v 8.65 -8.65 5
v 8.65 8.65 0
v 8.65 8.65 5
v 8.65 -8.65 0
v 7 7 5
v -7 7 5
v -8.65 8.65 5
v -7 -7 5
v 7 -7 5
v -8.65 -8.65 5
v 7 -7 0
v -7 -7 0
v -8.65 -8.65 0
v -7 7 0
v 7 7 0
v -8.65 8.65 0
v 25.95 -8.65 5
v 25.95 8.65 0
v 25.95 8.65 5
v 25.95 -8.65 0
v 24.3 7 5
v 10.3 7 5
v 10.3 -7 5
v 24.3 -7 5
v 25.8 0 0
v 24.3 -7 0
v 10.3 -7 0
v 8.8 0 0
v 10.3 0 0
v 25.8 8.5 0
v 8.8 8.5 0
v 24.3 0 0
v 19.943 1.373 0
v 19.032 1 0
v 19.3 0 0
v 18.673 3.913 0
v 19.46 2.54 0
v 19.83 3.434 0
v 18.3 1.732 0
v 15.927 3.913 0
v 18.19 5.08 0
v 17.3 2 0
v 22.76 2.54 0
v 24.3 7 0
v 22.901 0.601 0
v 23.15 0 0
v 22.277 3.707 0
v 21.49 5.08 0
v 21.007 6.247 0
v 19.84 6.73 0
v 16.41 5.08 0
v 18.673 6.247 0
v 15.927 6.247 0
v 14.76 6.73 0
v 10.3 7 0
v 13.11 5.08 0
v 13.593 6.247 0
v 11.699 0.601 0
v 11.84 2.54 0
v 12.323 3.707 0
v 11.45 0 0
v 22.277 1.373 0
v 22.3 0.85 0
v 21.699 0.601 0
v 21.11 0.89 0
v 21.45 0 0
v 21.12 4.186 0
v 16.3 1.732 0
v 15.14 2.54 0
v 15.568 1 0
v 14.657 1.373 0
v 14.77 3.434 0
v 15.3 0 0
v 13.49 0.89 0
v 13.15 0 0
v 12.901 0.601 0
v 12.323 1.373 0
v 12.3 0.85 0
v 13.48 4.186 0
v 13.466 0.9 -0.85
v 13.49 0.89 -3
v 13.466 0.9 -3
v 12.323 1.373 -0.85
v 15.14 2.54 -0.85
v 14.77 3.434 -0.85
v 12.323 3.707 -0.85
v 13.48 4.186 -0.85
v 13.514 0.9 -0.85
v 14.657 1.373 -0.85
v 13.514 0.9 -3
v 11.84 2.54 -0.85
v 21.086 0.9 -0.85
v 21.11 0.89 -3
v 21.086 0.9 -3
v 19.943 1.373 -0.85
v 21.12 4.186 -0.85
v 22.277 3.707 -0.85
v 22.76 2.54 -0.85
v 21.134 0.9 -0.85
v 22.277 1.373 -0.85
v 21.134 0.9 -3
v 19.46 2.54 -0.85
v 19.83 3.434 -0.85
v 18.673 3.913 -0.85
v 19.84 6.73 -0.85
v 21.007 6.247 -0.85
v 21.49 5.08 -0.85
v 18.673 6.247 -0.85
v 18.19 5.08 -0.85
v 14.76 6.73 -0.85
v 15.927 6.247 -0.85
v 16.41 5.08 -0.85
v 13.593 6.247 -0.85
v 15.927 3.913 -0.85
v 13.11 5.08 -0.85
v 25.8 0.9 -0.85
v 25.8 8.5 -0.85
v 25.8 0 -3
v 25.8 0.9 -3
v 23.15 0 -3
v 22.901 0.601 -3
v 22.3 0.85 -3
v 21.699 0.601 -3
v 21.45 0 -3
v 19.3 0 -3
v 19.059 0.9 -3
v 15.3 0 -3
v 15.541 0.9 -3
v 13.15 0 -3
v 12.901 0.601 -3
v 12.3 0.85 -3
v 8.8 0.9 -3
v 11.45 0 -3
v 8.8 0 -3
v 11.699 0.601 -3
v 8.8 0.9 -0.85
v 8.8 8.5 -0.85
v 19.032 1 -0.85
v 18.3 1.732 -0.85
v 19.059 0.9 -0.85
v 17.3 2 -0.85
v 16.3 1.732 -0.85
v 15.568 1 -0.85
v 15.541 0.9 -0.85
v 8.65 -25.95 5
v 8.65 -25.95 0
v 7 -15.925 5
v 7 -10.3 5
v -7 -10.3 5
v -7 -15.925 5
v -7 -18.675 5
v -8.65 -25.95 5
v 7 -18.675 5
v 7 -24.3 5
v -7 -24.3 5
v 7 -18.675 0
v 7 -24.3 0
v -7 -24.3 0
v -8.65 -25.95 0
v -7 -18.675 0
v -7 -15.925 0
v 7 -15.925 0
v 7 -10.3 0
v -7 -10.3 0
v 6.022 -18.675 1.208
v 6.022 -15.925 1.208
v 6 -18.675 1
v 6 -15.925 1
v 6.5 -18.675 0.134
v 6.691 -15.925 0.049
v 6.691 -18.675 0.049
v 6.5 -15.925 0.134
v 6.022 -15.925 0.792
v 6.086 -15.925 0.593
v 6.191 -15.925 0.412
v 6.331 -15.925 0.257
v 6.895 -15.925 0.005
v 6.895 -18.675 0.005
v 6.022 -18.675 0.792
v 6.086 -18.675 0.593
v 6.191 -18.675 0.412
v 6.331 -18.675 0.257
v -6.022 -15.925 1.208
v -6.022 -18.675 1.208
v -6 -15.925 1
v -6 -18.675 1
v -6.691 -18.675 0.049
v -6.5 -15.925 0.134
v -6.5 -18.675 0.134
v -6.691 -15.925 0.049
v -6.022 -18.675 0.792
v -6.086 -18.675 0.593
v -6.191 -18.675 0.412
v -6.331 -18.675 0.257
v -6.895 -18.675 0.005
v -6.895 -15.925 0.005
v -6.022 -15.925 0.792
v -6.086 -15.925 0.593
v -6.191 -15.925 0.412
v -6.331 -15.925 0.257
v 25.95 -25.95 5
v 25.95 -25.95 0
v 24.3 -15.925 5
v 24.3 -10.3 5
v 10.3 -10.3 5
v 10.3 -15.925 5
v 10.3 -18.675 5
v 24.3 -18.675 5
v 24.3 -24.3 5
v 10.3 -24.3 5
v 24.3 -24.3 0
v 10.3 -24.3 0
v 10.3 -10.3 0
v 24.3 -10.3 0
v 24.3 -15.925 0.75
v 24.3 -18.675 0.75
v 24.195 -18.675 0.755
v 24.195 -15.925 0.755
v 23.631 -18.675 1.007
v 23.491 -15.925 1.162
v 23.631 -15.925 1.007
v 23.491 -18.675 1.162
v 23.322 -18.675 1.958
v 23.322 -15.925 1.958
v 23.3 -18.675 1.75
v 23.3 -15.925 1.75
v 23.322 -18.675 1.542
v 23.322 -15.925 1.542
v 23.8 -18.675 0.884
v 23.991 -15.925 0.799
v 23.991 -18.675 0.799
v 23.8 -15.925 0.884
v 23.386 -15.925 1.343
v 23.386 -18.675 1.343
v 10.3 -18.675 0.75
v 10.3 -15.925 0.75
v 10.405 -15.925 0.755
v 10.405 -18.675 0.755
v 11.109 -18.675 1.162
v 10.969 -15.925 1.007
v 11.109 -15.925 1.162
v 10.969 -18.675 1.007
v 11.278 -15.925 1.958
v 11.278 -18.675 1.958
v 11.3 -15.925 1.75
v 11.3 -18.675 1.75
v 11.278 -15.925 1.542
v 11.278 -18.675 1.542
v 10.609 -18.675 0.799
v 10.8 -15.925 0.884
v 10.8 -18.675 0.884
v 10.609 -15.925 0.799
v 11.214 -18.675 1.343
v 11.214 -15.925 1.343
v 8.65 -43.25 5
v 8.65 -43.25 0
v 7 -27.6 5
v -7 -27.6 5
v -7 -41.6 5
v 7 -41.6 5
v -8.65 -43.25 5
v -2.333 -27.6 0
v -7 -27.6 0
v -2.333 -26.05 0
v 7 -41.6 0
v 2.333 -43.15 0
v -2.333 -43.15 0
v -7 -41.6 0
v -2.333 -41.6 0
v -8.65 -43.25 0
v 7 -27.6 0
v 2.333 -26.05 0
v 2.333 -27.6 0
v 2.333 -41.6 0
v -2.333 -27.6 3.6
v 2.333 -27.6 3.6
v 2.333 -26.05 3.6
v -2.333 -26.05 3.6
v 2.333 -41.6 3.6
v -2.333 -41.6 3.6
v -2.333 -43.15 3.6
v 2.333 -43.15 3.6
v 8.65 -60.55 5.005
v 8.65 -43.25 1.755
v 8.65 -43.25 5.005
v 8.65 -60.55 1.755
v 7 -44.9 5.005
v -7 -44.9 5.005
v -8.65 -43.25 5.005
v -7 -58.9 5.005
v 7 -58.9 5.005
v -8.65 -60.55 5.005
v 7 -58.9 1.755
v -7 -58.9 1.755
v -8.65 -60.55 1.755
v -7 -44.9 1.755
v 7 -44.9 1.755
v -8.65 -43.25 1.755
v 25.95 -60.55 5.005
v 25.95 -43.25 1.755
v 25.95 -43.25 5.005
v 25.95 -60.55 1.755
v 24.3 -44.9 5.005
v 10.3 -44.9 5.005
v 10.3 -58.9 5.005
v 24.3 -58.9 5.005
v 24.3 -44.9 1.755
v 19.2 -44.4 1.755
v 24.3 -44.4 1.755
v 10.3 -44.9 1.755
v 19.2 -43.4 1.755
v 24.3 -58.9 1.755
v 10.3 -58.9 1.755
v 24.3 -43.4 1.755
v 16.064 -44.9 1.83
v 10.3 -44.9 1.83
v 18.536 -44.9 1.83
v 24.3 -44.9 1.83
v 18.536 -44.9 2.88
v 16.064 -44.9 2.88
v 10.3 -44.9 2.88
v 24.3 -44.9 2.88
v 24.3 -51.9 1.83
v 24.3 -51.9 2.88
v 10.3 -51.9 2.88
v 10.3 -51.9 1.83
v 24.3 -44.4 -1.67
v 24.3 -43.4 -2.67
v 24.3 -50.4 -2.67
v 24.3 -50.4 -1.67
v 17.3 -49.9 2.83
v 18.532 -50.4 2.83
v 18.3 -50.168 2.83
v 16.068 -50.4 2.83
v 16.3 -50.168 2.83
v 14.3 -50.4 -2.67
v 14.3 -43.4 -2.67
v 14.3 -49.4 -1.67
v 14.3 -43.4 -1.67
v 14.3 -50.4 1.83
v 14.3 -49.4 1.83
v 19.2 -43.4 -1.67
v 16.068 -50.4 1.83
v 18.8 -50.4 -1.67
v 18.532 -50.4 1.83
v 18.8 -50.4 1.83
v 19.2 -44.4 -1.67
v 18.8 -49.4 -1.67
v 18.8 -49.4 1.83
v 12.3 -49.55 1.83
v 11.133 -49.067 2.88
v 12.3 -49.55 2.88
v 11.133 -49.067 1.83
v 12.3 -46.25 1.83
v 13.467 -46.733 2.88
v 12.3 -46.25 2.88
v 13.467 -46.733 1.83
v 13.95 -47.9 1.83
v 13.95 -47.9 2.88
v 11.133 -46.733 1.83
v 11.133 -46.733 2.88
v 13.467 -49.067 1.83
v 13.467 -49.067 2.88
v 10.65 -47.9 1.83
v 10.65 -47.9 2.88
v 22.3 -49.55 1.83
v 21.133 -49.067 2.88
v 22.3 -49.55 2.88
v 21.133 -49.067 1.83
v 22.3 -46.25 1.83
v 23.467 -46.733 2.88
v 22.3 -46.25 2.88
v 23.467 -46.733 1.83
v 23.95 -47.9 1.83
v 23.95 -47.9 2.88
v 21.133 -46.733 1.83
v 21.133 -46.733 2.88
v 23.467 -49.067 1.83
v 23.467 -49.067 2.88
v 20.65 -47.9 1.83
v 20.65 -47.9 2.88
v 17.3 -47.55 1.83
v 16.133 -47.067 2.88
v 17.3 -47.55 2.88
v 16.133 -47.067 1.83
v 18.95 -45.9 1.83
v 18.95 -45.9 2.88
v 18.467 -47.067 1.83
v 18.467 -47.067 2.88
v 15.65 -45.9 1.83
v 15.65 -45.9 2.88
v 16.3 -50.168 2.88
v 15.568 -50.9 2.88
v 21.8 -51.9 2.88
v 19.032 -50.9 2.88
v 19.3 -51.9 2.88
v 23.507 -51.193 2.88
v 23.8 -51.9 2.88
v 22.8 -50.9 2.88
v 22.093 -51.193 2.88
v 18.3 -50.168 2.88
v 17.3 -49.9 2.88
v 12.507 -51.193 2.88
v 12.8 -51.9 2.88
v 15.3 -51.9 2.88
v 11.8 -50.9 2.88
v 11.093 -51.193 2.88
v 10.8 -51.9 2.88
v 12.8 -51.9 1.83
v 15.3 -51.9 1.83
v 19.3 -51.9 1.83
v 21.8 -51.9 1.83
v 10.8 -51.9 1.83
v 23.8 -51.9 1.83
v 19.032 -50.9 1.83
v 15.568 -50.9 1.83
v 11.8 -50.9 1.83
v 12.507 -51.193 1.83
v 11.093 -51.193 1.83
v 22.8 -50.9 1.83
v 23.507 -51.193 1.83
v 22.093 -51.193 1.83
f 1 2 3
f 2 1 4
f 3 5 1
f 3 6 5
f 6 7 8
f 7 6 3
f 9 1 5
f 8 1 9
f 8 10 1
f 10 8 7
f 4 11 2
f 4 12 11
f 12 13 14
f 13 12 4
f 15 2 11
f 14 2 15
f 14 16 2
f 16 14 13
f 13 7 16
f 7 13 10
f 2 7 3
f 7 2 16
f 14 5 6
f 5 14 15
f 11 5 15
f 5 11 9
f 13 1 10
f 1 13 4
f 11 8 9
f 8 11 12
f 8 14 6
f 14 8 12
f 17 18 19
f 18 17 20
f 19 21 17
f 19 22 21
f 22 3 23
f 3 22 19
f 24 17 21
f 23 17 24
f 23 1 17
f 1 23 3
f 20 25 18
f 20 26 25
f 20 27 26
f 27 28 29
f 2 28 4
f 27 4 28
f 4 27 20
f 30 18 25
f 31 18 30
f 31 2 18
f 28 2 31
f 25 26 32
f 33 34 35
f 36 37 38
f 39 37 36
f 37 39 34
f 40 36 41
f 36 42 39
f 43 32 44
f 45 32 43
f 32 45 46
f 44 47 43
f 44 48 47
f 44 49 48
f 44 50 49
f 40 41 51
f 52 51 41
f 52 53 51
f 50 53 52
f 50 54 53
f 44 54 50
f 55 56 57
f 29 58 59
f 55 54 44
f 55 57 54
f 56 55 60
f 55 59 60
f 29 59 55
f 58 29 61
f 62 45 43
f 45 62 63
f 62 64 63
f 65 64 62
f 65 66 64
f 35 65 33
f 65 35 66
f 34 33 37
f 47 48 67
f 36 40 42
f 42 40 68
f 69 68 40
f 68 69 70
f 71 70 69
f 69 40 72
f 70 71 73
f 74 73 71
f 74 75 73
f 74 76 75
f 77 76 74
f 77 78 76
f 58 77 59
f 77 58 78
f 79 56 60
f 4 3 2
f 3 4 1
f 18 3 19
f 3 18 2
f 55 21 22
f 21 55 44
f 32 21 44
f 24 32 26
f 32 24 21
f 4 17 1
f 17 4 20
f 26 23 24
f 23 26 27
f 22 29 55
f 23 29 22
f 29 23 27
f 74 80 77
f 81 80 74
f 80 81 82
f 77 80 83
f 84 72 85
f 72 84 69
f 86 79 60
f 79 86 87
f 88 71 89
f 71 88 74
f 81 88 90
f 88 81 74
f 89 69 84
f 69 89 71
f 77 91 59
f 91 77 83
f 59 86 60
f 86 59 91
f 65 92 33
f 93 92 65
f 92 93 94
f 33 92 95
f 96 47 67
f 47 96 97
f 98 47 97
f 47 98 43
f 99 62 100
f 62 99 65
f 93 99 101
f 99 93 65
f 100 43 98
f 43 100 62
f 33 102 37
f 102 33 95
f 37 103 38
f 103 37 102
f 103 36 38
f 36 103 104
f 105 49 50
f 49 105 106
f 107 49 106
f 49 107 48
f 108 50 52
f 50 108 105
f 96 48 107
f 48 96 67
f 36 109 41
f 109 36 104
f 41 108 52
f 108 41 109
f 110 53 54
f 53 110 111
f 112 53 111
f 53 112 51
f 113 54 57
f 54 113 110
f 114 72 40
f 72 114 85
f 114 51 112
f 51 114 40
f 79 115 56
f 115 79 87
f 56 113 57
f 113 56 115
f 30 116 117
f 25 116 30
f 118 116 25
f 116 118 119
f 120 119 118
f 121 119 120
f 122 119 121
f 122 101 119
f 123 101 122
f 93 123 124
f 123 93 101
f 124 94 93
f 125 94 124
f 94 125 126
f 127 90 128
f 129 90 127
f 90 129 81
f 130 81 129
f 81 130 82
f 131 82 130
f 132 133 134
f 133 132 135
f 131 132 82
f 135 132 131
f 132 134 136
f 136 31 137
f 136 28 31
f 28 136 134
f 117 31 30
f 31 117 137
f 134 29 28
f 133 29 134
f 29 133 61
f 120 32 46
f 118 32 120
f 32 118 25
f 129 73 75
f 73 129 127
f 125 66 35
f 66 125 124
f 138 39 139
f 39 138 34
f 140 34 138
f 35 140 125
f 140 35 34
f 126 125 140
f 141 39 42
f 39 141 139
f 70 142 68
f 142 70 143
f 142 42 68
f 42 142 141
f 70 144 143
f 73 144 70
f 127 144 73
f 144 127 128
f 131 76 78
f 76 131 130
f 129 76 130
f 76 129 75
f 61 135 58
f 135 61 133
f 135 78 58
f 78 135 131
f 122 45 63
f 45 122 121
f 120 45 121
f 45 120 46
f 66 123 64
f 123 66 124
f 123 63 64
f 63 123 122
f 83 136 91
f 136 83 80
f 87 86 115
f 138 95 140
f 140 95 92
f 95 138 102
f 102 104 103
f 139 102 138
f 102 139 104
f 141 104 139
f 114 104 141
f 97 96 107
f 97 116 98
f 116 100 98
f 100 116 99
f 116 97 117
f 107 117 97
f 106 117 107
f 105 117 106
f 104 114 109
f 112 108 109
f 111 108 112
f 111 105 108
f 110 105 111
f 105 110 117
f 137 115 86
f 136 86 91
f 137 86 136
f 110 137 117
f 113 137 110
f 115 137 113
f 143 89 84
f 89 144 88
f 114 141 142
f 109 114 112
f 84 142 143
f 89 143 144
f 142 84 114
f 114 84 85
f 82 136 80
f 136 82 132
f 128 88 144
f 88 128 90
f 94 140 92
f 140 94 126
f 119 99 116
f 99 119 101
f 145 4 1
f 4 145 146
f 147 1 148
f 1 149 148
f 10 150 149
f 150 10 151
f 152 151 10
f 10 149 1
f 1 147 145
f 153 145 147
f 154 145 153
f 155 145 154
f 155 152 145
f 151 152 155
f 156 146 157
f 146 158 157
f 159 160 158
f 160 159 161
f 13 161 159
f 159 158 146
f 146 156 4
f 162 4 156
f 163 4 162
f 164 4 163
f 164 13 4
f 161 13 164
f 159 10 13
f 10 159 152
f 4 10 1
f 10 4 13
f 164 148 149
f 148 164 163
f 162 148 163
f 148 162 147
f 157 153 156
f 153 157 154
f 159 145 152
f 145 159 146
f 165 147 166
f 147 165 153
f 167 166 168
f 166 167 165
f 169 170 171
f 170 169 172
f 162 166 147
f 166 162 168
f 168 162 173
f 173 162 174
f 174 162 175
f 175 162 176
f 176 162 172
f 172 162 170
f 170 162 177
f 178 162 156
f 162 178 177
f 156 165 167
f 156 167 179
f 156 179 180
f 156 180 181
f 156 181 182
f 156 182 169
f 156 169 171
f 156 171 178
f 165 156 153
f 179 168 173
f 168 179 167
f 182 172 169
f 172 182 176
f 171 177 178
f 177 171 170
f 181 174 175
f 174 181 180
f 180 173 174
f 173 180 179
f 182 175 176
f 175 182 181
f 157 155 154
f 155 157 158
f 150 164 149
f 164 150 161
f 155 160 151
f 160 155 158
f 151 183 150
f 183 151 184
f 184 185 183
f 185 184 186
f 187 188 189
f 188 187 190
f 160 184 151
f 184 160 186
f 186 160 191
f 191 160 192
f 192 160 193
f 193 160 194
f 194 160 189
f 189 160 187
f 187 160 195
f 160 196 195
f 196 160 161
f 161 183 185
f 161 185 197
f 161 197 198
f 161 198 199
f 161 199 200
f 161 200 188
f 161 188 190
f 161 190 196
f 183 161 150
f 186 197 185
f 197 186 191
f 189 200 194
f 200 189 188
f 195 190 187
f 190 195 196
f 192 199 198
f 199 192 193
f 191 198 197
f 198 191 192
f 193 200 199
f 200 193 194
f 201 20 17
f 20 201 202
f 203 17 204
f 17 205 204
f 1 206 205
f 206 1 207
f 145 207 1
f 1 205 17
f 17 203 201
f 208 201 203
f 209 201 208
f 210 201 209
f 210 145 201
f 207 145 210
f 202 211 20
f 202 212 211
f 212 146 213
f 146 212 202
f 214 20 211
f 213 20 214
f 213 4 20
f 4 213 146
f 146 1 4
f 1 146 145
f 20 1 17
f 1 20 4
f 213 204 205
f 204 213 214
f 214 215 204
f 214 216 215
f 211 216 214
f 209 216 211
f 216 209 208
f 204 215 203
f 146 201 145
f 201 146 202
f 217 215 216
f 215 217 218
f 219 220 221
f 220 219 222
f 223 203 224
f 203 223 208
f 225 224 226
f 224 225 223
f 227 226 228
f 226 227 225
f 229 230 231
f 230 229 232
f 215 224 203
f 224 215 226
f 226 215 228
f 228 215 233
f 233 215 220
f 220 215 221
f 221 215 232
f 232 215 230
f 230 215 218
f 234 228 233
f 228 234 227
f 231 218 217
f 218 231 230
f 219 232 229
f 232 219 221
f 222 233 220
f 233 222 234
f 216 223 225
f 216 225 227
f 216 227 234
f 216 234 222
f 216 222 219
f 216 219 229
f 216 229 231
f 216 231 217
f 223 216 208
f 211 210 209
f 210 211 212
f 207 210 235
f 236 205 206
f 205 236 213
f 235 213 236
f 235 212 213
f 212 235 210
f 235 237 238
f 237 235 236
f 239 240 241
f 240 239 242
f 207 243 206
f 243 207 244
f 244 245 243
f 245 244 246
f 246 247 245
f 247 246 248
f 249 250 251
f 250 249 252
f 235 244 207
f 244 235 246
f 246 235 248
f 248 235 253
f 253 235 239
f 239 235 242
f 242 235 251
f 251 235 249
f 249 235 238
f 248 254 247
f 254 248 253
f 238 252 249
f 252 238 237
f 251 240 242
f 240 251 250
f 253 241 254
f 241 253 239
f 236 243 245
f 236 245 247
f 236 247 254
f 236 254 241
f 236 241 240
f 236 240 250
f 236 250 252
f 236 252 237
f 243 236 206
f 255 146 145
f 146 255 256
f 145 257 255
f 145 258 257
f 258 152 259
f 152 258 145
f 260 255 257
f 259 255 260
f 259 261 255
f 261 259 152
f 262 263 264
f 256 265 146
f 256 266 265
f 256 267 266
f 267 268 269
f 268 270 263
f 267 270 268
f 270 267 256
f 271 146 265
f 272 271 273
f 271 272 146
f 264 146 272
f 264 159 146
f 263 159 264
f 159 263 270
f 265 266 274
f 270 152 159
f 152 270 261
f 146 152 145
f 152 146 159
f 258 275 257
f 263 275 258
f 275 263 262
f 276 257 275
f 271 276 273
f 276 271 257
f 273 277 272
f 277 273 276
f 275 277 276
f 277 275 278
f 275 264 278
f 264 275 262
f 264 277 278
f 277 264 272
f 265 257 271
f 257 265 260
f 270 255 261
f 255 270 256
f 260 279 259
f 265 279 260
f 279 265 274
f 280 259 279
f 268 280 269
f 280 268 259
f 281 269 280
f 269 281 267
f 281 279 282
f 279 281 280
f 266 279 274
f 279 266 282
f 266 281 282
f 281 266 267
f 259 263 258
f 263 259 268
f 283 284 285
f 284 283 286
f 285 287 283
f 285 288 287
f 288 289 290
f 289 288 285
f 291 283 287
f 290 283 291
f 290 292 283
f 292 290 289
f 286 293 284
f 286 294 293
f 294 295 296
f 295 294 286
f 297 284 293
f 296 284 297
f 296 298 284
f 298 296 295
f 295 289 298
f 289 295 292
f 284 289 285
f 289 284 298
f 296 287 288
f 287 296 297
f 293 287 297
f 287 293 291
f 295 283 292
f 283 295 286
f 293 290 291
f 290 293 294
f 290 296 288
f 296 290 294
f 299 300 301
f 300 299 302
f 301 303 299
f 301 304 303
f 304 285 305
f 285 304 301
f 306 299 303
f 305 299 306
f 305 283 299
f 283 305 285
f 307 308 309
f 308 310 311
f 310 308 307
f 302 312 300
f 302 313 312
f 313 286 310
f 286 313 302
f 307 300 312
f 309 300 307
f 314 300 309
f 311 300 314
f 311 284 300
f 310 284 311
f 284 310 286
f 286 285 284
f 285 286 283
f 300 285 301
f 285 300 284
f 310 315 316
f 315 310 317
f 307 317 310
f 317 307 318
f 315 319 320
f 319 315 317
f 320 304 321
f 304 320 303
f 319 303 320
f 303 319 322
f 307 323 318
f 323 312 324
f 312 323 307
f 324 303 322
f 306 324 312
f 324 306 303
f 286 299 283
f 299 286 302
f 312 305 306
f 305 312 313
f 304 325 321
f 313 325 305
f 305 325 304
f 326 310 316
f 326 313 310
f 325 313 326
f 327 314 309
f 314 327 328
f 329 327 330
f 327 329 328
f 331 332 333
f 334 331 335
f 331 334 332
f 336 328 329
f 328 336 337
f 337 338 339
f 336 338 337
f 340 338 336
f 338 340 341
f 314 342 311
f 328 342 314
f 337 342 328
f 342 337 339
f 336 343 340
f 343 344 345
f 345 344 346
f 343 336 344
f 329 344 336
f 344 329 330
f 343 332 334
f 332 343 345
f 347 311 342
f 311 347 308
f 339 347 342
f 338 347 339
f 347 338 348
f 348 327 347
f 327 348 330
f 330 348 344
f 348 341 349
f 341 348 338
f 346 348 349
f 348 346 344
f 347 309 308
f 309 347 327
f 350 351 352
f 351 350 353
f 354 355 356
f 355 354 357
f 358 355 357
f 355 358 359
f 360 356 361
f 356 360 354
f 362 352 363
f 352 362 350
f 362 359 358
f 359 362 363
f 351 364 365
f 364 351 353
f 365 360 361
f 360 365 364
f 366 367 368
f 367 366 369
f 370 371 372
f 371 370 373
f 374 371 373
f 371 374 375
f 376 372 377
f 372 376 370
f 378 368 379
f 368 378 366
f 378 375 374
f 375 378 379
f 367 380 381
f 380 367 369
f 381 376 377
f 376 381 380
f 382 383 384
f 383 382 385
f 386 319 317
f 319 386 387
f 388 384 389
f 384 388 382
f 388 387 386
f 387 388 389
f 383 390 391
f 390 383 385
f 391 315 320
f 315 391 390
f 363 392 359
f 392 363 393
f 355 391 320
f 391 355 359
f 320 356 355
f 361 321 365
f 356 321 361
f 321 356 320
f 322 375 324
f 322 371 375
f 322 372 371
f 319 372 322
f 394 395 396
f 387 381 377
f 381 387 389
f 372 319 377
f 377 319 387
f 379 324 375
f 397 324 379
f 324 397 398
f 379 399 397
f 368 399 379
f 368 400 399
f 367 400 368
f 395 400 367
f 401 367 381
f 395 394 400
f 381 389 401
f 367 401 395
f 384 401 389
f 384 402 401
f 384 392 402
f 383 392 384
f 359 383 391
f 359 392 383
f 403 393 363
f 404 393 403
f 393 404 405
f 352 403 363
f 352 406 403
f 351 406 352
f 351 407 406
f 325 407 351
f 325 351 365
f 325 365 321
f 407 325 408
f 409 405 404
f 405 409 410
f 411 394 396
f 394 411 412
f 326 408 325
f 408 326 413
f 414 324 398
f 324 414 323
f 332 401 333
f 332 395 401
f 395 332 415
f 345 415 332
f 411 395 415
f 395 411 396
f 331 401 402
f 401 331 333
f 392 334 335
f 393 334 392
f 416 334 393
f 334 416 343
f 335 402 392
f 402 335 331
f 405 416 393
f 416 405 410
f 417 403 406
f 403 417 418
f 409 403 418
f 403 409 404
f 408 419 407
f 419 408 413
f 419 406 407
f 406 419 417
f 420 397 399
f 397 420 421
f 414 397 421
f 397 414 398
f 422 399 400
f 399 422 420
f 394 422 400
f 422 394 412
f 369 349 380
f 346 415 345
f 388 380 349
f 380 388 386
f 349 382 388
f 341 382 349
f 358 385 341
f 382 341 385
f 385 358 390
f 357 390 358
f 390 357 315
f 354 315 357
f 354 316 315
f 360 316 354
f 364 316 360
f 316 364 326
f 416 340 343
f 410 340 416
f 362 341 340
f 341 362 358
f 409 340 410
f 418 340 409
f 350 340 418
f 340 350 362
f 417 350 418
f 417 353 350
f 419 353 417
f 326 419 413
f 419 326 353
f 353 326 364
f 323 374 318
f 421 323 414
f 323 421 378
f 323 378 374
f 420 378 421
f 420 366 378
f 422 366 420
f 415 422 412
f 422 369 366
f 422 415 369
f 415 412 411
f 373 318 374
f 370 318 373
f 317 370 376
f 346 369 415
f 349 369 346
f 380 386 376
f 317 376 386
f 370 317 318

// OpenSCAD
union() {
  
  // box and mx
  color("Green", 1) {
    translate ([ 0, 0, 0 ]) {
      union() {
        union() {
          translate([ 0, 7.825, 5 / 2 ]) {
            cube([ 17.3, 1.65, 5 ], center = true);
          }
          translate([ 7.825, 0, 5 / 2 ]) {
            cube([ 1.65, 17.3, 5 ], center = true);
          }
        }
        mirror([ 0, 1, 0 ]) {
          mirror([ 1, 0, 0 ]) {
            union() {
              translate([ 0, 7.825, 5 / 2 ]) {
                cube([ 17.3, 1.65, 5 ], center = true);
              }
              translate([ 7.825, 0, 5 / 2 ]) {
                cube([ 1.65, 17.3, 5 ], center = true);
              }
            }
          }
        }
      }
    }
  }

  // box and mx hotswap
  color("LightGreen", 1) {
    translate([ 17.3, 0, 0 ]) {
      union() {
        union() {
          translate([ 0, 7.825, 5 / 2 ]) {
            cube([ 17.3, 1.65, 5 ], center = true);
          }
          translate([ 7.825, 0, 5 / 2 ]) {
            cube([ 1.65, 17.3, 5 ], center = true);
          }
        }
        mirror([ 0, 1, 0 ]) {
          mirror([ 1, 0, 0 ]) {
            union() {
              translate([ 0, 7.825, 5 / 2 ]) {
                cube([ 17.3, 1.65, 5 ], center = true);
              }
              translate([ 7.825, 0, 5 / 2 ]) {
                cube([ 1.65, 17.3, 5 ], center = true);
              }
            }
          }
        }
        union() {
          difference() {
            translate([ 0, 4.25, -1.5 ]) {
              cube([ 17.0, 8.5, 3 ], center = true);
            }
            cylinder($fn = 12, h = 10, r = 2.0, center = true);
            union() {
              translate([ -3.81, 2.54, 0 ]) {
                cylinder($fn = 8, h = 10, r = 1.65, center = true);
              }
              translate([ 3.81, 2.54, 0 ]) {
                cylinder($fn = 8, h = 10, r = 1.65, center = true);
              }
            }
            union() {
              translate([ 2.54, 5.08, 0 ]) {
                cylinder($fn = 8, h = 10, r = 1.65, center = true);
              }
              translate([ -2.54, 5.08, 0 ]) {
                cylinder($fn = 8, h = 10, r = 1.65, center = true);
              }
            }
            translate([ -5, 0, 0 ]) {
              cylinder($fn = 8, h = 10, r = 0.85, center = true);
            }
            translate([ 5, 0, 0 ]) {
              cylinder($fn = 8, h = 10, r = 0.85, center = true);
            }
            translate([ 0, 5, -2.6 ]) {
              cube([ 19, 8.2, 3.5 ], center = true);
            }
          }
        }
      }
    }
  }
  
  
  // mx
  color("Blue", 1) {
    translate([ 0, -17.3, 0 ]) {
      union () {
        union () {
          translate ([0, 7.825, 5/2]) {
            cube ([17.3, 1.65, 5], center=true);
          }
          translate ([7.825, 0, 5/2]) {
            cube ([1.65, 17.3, 5], center=true);
          }
          hull () {
            translate ([7.75, 0, 5/2]) {
              cube ([1.5, 2.75, 5], center=true);
            }
            translate ([7.0, 0, 1]) {
              rotate (a=90.0, v=[1, 0, 0]) {
                cylinder ($fn=30, h=2.75, r=1, center=true);
              }
            }
          }
        }
        mirror ([0, 1, 0]) {
          mirror ([1, 0, 0]) {
            union () {
              translate ([0, 7.825, 5/2]) {
                cube ([17.3, 1.65, 5], center=true);
              }
              translate ([7.825, 0, 5/2]) {
                cube ([1.65, 17.3, 5], center=true);
              }
              hull () {
                translate ([7.75, 0, 5/2]) {
                  cube ([1.5, 2.75, 5], center=true);
                }
                translate ([7.0, 0, 1]) {
                  rotate (a=90.0, v=[1, 0, 0]) {
                    cylinder ($fn=30, h=2.75, r=1, center=true);
                  }
                }
              }
            }
          }
        }
      }
    }
  }
  // mx-snap-in
  color("Cyan", 1) {
    translate ([ 17.3, -17.3, 0 ]) {
      union() {
        union() {
          translate([ 0, 7.825, 5 / 2 ]) {
            cube([ 17.3, 1.65, 5 ], center = true);
          }
          translate([ 7.825, 0, 5 / 2 ]) {
            cube([ 1.65, 17.3, 5 ], center = true);
          }
          hull() {
            translate([ 7.75, 0, 2.875 ]) {
              cube([ 1.5, 2.75, 4.25 ], center = true);
            }
            translate([ 7.0, 0, 1.75 ]) {
              rotate(a = 90.0, v = [ 1, 0, 0 ]) {
                cylinder($fn = 30, h = 2.75, r = 1, center = true);
              }
            }
          }
        }
        mirror([ 0, 1, 0 ]) {
          mirror([ 1, 0, 0 ]) {
            union() {
              translate([ 0, 7.825, 5 / 2 ]) {
                cube([ 17.3, 1.65, 5 ], center = true);
              }
              translate([ 7.825, 0, 5 / 2 ]) {
                cube([ 1.65, 17.3, 5 ], center = true);
              }
              hull() {
                translate([ 7.75, 0, 2.875 ]) {
                  cube([ 1.5, 2.75, 4.25 ], center = true);
                }
                translate([ 7.0, 0, 1.75 ]) {
                  rotate(a = 90.0, v = [ 1, 0, 0 ]) {
                    cylinder($fn = 30, h = 2.75, r = 1, center = true);
                  }
                }
              }
            }
          }
        }
      }
    }
  }
    
  
  // kailh
  color("Red", 1) {
    translate([ 0, -34.6, 0 ]) {
      union() {
        union() {
          difference() {
            translate([ 0, 7.825, 5 / 2 ]) {
              cube([ 17.3, 1.65, 5 ], center = true);
            }
            translate([ 0, 7.75, 1 / 5 ]) {
              cube([ 4.666666666666667, 1.6, 6.8 ], center = true);
            }
          }
          translate([ 7.825, 0, 5 / 2 ]) {
            cube([ 1.65, 17.3, 5 ], center = true);
          }
        }
        mirror([ 0, 1, 0 ]) {
          mirror([ 1, 0, 0 ]) {
            union() {
              difference() {
                translate([ 0, 7.825, 5 / 2 ]) {
                  cube([ 17.3, 1.65, 5 ], center = true);
                }
                translate([ 0, 7.75, 1 / 5 ]) {
                  cube([ 4.666666666666667, 1.6, 6.8 ], center = true);
                }
              }
              translate([ 7.825, 0, 5 / 2 ]) {
                cube([ 1.65, 17.3, 5 ], center = true);
              }
            }
          }
        }
      }
    }
  }


  // kailh choc
  color("Yellow", 1) {  
    translate([ 0, -51.9, -0.12 ]) {
      union() {
          union() {
            translate([ 0, 7.825, 3.5 ]) {
              cube([ 17.3, 1.65, 3.25 ], center = true);
            }
            translate([ 7.825, 0, 3.5 ]) {
              cube([ 1.65, 17.3, 3.25 ], center = true);
            }
          }
          mirror([ 0, 1, 0 ]) {
            mirror([ 1, 0, 0 ]) {
              union() {
                translate([ 0, 7.825, 3.5 ]) {
                  cube([ 17.3, 1.65, 3.25 ], center = true);
                }
                translate([ 7.825, 0, 3.5 ]) {
                  cube([ 1.65, 17.3, 3.25 ], center = true);
                }
              }
            }
          }
        }
    }
  }
  // kailh choc hotswap
  color("Orange", 1) {  
    translate([ 17.3, -51.9, -0.12 ]) {
      union() {
          union() {
            translate([ 0, 7.825, 3.5 ]) {
              cube([ 17.3, 1.65, 3.25 ], center = true);
            }
            translate([ 7.825, 0, 3.5 ]) {
              cube([ 1.65, 17.3, 3.25 ], center = true);
            }
          }
          mirror([ 0, 1, 0 ]) {
            mirror([ 1, 0, 0 ]) {
              union() {
                translate([
                  0,
                  7.825,
                  3.5,
                ]) {
                  cube([ 17.3, 1.65, 3.25 ], center = true);
                }
                translate([ 7.825, 0, 3.5 ]) {
                  cube([ 1.65, 17.3, 3.25 ], center = true);
                }
              }
            }
          }
          union() {
            difference() {
              translate([ 2, 5, 0.2 ]) { cube([ 10, 7, 5.5 ], center = true); }
              translate([ -0.6, 6, 1.2 ]) {
                cube([ 5, 7, 5.5 ], center = true);
              }
              translate([ 5, 4, 1.2 ]) { cube([ 7, 7, 5.5 ], center = true); }
            }
            difference() {
              translate([ 0, 4.25, 1.5 ]) {
                cube([ 17.0, 8.5, 3 ], center = true);
              }
              cylinder($fn = 12, h = 10, r = 2.0, center = true);
              union() {
                translate([ -5, 4, 0 ]) {
                  cylinder($fn = 8, h = 10, r = 1.65, center = true);
                }
                translate([ 5, 4, 5 ]) {
                  cylinder($fn = 8, h = 10, r = 1.65, center = true);
                }
              }
              union() {
                translate([ 0, 6, 5 ]) {
                  cylinder($fn = 8, h = 10, r = 1.65, center = true);
                }
                translate([ 0, 6, 5 ]) {
                  cylinder($fn = 8, h = 10, r = 1.65, center = true);
                }
              }
              translate([ -5.5, 0, 0 ]) {
                cylinder($fn = 8, h = 10, r = 1, center = true);
              }
              translate([ 5.5, 0, 0 ]) {
                cylinder($fn = 8, h = 10, r = 1, center = true);
              }
              translate([ 0, 5, 0.2 ]) {
                cube([ 19, 11.5, 3.5 ], center = true);
              }
            }
          }
        }
    }
  }

}
